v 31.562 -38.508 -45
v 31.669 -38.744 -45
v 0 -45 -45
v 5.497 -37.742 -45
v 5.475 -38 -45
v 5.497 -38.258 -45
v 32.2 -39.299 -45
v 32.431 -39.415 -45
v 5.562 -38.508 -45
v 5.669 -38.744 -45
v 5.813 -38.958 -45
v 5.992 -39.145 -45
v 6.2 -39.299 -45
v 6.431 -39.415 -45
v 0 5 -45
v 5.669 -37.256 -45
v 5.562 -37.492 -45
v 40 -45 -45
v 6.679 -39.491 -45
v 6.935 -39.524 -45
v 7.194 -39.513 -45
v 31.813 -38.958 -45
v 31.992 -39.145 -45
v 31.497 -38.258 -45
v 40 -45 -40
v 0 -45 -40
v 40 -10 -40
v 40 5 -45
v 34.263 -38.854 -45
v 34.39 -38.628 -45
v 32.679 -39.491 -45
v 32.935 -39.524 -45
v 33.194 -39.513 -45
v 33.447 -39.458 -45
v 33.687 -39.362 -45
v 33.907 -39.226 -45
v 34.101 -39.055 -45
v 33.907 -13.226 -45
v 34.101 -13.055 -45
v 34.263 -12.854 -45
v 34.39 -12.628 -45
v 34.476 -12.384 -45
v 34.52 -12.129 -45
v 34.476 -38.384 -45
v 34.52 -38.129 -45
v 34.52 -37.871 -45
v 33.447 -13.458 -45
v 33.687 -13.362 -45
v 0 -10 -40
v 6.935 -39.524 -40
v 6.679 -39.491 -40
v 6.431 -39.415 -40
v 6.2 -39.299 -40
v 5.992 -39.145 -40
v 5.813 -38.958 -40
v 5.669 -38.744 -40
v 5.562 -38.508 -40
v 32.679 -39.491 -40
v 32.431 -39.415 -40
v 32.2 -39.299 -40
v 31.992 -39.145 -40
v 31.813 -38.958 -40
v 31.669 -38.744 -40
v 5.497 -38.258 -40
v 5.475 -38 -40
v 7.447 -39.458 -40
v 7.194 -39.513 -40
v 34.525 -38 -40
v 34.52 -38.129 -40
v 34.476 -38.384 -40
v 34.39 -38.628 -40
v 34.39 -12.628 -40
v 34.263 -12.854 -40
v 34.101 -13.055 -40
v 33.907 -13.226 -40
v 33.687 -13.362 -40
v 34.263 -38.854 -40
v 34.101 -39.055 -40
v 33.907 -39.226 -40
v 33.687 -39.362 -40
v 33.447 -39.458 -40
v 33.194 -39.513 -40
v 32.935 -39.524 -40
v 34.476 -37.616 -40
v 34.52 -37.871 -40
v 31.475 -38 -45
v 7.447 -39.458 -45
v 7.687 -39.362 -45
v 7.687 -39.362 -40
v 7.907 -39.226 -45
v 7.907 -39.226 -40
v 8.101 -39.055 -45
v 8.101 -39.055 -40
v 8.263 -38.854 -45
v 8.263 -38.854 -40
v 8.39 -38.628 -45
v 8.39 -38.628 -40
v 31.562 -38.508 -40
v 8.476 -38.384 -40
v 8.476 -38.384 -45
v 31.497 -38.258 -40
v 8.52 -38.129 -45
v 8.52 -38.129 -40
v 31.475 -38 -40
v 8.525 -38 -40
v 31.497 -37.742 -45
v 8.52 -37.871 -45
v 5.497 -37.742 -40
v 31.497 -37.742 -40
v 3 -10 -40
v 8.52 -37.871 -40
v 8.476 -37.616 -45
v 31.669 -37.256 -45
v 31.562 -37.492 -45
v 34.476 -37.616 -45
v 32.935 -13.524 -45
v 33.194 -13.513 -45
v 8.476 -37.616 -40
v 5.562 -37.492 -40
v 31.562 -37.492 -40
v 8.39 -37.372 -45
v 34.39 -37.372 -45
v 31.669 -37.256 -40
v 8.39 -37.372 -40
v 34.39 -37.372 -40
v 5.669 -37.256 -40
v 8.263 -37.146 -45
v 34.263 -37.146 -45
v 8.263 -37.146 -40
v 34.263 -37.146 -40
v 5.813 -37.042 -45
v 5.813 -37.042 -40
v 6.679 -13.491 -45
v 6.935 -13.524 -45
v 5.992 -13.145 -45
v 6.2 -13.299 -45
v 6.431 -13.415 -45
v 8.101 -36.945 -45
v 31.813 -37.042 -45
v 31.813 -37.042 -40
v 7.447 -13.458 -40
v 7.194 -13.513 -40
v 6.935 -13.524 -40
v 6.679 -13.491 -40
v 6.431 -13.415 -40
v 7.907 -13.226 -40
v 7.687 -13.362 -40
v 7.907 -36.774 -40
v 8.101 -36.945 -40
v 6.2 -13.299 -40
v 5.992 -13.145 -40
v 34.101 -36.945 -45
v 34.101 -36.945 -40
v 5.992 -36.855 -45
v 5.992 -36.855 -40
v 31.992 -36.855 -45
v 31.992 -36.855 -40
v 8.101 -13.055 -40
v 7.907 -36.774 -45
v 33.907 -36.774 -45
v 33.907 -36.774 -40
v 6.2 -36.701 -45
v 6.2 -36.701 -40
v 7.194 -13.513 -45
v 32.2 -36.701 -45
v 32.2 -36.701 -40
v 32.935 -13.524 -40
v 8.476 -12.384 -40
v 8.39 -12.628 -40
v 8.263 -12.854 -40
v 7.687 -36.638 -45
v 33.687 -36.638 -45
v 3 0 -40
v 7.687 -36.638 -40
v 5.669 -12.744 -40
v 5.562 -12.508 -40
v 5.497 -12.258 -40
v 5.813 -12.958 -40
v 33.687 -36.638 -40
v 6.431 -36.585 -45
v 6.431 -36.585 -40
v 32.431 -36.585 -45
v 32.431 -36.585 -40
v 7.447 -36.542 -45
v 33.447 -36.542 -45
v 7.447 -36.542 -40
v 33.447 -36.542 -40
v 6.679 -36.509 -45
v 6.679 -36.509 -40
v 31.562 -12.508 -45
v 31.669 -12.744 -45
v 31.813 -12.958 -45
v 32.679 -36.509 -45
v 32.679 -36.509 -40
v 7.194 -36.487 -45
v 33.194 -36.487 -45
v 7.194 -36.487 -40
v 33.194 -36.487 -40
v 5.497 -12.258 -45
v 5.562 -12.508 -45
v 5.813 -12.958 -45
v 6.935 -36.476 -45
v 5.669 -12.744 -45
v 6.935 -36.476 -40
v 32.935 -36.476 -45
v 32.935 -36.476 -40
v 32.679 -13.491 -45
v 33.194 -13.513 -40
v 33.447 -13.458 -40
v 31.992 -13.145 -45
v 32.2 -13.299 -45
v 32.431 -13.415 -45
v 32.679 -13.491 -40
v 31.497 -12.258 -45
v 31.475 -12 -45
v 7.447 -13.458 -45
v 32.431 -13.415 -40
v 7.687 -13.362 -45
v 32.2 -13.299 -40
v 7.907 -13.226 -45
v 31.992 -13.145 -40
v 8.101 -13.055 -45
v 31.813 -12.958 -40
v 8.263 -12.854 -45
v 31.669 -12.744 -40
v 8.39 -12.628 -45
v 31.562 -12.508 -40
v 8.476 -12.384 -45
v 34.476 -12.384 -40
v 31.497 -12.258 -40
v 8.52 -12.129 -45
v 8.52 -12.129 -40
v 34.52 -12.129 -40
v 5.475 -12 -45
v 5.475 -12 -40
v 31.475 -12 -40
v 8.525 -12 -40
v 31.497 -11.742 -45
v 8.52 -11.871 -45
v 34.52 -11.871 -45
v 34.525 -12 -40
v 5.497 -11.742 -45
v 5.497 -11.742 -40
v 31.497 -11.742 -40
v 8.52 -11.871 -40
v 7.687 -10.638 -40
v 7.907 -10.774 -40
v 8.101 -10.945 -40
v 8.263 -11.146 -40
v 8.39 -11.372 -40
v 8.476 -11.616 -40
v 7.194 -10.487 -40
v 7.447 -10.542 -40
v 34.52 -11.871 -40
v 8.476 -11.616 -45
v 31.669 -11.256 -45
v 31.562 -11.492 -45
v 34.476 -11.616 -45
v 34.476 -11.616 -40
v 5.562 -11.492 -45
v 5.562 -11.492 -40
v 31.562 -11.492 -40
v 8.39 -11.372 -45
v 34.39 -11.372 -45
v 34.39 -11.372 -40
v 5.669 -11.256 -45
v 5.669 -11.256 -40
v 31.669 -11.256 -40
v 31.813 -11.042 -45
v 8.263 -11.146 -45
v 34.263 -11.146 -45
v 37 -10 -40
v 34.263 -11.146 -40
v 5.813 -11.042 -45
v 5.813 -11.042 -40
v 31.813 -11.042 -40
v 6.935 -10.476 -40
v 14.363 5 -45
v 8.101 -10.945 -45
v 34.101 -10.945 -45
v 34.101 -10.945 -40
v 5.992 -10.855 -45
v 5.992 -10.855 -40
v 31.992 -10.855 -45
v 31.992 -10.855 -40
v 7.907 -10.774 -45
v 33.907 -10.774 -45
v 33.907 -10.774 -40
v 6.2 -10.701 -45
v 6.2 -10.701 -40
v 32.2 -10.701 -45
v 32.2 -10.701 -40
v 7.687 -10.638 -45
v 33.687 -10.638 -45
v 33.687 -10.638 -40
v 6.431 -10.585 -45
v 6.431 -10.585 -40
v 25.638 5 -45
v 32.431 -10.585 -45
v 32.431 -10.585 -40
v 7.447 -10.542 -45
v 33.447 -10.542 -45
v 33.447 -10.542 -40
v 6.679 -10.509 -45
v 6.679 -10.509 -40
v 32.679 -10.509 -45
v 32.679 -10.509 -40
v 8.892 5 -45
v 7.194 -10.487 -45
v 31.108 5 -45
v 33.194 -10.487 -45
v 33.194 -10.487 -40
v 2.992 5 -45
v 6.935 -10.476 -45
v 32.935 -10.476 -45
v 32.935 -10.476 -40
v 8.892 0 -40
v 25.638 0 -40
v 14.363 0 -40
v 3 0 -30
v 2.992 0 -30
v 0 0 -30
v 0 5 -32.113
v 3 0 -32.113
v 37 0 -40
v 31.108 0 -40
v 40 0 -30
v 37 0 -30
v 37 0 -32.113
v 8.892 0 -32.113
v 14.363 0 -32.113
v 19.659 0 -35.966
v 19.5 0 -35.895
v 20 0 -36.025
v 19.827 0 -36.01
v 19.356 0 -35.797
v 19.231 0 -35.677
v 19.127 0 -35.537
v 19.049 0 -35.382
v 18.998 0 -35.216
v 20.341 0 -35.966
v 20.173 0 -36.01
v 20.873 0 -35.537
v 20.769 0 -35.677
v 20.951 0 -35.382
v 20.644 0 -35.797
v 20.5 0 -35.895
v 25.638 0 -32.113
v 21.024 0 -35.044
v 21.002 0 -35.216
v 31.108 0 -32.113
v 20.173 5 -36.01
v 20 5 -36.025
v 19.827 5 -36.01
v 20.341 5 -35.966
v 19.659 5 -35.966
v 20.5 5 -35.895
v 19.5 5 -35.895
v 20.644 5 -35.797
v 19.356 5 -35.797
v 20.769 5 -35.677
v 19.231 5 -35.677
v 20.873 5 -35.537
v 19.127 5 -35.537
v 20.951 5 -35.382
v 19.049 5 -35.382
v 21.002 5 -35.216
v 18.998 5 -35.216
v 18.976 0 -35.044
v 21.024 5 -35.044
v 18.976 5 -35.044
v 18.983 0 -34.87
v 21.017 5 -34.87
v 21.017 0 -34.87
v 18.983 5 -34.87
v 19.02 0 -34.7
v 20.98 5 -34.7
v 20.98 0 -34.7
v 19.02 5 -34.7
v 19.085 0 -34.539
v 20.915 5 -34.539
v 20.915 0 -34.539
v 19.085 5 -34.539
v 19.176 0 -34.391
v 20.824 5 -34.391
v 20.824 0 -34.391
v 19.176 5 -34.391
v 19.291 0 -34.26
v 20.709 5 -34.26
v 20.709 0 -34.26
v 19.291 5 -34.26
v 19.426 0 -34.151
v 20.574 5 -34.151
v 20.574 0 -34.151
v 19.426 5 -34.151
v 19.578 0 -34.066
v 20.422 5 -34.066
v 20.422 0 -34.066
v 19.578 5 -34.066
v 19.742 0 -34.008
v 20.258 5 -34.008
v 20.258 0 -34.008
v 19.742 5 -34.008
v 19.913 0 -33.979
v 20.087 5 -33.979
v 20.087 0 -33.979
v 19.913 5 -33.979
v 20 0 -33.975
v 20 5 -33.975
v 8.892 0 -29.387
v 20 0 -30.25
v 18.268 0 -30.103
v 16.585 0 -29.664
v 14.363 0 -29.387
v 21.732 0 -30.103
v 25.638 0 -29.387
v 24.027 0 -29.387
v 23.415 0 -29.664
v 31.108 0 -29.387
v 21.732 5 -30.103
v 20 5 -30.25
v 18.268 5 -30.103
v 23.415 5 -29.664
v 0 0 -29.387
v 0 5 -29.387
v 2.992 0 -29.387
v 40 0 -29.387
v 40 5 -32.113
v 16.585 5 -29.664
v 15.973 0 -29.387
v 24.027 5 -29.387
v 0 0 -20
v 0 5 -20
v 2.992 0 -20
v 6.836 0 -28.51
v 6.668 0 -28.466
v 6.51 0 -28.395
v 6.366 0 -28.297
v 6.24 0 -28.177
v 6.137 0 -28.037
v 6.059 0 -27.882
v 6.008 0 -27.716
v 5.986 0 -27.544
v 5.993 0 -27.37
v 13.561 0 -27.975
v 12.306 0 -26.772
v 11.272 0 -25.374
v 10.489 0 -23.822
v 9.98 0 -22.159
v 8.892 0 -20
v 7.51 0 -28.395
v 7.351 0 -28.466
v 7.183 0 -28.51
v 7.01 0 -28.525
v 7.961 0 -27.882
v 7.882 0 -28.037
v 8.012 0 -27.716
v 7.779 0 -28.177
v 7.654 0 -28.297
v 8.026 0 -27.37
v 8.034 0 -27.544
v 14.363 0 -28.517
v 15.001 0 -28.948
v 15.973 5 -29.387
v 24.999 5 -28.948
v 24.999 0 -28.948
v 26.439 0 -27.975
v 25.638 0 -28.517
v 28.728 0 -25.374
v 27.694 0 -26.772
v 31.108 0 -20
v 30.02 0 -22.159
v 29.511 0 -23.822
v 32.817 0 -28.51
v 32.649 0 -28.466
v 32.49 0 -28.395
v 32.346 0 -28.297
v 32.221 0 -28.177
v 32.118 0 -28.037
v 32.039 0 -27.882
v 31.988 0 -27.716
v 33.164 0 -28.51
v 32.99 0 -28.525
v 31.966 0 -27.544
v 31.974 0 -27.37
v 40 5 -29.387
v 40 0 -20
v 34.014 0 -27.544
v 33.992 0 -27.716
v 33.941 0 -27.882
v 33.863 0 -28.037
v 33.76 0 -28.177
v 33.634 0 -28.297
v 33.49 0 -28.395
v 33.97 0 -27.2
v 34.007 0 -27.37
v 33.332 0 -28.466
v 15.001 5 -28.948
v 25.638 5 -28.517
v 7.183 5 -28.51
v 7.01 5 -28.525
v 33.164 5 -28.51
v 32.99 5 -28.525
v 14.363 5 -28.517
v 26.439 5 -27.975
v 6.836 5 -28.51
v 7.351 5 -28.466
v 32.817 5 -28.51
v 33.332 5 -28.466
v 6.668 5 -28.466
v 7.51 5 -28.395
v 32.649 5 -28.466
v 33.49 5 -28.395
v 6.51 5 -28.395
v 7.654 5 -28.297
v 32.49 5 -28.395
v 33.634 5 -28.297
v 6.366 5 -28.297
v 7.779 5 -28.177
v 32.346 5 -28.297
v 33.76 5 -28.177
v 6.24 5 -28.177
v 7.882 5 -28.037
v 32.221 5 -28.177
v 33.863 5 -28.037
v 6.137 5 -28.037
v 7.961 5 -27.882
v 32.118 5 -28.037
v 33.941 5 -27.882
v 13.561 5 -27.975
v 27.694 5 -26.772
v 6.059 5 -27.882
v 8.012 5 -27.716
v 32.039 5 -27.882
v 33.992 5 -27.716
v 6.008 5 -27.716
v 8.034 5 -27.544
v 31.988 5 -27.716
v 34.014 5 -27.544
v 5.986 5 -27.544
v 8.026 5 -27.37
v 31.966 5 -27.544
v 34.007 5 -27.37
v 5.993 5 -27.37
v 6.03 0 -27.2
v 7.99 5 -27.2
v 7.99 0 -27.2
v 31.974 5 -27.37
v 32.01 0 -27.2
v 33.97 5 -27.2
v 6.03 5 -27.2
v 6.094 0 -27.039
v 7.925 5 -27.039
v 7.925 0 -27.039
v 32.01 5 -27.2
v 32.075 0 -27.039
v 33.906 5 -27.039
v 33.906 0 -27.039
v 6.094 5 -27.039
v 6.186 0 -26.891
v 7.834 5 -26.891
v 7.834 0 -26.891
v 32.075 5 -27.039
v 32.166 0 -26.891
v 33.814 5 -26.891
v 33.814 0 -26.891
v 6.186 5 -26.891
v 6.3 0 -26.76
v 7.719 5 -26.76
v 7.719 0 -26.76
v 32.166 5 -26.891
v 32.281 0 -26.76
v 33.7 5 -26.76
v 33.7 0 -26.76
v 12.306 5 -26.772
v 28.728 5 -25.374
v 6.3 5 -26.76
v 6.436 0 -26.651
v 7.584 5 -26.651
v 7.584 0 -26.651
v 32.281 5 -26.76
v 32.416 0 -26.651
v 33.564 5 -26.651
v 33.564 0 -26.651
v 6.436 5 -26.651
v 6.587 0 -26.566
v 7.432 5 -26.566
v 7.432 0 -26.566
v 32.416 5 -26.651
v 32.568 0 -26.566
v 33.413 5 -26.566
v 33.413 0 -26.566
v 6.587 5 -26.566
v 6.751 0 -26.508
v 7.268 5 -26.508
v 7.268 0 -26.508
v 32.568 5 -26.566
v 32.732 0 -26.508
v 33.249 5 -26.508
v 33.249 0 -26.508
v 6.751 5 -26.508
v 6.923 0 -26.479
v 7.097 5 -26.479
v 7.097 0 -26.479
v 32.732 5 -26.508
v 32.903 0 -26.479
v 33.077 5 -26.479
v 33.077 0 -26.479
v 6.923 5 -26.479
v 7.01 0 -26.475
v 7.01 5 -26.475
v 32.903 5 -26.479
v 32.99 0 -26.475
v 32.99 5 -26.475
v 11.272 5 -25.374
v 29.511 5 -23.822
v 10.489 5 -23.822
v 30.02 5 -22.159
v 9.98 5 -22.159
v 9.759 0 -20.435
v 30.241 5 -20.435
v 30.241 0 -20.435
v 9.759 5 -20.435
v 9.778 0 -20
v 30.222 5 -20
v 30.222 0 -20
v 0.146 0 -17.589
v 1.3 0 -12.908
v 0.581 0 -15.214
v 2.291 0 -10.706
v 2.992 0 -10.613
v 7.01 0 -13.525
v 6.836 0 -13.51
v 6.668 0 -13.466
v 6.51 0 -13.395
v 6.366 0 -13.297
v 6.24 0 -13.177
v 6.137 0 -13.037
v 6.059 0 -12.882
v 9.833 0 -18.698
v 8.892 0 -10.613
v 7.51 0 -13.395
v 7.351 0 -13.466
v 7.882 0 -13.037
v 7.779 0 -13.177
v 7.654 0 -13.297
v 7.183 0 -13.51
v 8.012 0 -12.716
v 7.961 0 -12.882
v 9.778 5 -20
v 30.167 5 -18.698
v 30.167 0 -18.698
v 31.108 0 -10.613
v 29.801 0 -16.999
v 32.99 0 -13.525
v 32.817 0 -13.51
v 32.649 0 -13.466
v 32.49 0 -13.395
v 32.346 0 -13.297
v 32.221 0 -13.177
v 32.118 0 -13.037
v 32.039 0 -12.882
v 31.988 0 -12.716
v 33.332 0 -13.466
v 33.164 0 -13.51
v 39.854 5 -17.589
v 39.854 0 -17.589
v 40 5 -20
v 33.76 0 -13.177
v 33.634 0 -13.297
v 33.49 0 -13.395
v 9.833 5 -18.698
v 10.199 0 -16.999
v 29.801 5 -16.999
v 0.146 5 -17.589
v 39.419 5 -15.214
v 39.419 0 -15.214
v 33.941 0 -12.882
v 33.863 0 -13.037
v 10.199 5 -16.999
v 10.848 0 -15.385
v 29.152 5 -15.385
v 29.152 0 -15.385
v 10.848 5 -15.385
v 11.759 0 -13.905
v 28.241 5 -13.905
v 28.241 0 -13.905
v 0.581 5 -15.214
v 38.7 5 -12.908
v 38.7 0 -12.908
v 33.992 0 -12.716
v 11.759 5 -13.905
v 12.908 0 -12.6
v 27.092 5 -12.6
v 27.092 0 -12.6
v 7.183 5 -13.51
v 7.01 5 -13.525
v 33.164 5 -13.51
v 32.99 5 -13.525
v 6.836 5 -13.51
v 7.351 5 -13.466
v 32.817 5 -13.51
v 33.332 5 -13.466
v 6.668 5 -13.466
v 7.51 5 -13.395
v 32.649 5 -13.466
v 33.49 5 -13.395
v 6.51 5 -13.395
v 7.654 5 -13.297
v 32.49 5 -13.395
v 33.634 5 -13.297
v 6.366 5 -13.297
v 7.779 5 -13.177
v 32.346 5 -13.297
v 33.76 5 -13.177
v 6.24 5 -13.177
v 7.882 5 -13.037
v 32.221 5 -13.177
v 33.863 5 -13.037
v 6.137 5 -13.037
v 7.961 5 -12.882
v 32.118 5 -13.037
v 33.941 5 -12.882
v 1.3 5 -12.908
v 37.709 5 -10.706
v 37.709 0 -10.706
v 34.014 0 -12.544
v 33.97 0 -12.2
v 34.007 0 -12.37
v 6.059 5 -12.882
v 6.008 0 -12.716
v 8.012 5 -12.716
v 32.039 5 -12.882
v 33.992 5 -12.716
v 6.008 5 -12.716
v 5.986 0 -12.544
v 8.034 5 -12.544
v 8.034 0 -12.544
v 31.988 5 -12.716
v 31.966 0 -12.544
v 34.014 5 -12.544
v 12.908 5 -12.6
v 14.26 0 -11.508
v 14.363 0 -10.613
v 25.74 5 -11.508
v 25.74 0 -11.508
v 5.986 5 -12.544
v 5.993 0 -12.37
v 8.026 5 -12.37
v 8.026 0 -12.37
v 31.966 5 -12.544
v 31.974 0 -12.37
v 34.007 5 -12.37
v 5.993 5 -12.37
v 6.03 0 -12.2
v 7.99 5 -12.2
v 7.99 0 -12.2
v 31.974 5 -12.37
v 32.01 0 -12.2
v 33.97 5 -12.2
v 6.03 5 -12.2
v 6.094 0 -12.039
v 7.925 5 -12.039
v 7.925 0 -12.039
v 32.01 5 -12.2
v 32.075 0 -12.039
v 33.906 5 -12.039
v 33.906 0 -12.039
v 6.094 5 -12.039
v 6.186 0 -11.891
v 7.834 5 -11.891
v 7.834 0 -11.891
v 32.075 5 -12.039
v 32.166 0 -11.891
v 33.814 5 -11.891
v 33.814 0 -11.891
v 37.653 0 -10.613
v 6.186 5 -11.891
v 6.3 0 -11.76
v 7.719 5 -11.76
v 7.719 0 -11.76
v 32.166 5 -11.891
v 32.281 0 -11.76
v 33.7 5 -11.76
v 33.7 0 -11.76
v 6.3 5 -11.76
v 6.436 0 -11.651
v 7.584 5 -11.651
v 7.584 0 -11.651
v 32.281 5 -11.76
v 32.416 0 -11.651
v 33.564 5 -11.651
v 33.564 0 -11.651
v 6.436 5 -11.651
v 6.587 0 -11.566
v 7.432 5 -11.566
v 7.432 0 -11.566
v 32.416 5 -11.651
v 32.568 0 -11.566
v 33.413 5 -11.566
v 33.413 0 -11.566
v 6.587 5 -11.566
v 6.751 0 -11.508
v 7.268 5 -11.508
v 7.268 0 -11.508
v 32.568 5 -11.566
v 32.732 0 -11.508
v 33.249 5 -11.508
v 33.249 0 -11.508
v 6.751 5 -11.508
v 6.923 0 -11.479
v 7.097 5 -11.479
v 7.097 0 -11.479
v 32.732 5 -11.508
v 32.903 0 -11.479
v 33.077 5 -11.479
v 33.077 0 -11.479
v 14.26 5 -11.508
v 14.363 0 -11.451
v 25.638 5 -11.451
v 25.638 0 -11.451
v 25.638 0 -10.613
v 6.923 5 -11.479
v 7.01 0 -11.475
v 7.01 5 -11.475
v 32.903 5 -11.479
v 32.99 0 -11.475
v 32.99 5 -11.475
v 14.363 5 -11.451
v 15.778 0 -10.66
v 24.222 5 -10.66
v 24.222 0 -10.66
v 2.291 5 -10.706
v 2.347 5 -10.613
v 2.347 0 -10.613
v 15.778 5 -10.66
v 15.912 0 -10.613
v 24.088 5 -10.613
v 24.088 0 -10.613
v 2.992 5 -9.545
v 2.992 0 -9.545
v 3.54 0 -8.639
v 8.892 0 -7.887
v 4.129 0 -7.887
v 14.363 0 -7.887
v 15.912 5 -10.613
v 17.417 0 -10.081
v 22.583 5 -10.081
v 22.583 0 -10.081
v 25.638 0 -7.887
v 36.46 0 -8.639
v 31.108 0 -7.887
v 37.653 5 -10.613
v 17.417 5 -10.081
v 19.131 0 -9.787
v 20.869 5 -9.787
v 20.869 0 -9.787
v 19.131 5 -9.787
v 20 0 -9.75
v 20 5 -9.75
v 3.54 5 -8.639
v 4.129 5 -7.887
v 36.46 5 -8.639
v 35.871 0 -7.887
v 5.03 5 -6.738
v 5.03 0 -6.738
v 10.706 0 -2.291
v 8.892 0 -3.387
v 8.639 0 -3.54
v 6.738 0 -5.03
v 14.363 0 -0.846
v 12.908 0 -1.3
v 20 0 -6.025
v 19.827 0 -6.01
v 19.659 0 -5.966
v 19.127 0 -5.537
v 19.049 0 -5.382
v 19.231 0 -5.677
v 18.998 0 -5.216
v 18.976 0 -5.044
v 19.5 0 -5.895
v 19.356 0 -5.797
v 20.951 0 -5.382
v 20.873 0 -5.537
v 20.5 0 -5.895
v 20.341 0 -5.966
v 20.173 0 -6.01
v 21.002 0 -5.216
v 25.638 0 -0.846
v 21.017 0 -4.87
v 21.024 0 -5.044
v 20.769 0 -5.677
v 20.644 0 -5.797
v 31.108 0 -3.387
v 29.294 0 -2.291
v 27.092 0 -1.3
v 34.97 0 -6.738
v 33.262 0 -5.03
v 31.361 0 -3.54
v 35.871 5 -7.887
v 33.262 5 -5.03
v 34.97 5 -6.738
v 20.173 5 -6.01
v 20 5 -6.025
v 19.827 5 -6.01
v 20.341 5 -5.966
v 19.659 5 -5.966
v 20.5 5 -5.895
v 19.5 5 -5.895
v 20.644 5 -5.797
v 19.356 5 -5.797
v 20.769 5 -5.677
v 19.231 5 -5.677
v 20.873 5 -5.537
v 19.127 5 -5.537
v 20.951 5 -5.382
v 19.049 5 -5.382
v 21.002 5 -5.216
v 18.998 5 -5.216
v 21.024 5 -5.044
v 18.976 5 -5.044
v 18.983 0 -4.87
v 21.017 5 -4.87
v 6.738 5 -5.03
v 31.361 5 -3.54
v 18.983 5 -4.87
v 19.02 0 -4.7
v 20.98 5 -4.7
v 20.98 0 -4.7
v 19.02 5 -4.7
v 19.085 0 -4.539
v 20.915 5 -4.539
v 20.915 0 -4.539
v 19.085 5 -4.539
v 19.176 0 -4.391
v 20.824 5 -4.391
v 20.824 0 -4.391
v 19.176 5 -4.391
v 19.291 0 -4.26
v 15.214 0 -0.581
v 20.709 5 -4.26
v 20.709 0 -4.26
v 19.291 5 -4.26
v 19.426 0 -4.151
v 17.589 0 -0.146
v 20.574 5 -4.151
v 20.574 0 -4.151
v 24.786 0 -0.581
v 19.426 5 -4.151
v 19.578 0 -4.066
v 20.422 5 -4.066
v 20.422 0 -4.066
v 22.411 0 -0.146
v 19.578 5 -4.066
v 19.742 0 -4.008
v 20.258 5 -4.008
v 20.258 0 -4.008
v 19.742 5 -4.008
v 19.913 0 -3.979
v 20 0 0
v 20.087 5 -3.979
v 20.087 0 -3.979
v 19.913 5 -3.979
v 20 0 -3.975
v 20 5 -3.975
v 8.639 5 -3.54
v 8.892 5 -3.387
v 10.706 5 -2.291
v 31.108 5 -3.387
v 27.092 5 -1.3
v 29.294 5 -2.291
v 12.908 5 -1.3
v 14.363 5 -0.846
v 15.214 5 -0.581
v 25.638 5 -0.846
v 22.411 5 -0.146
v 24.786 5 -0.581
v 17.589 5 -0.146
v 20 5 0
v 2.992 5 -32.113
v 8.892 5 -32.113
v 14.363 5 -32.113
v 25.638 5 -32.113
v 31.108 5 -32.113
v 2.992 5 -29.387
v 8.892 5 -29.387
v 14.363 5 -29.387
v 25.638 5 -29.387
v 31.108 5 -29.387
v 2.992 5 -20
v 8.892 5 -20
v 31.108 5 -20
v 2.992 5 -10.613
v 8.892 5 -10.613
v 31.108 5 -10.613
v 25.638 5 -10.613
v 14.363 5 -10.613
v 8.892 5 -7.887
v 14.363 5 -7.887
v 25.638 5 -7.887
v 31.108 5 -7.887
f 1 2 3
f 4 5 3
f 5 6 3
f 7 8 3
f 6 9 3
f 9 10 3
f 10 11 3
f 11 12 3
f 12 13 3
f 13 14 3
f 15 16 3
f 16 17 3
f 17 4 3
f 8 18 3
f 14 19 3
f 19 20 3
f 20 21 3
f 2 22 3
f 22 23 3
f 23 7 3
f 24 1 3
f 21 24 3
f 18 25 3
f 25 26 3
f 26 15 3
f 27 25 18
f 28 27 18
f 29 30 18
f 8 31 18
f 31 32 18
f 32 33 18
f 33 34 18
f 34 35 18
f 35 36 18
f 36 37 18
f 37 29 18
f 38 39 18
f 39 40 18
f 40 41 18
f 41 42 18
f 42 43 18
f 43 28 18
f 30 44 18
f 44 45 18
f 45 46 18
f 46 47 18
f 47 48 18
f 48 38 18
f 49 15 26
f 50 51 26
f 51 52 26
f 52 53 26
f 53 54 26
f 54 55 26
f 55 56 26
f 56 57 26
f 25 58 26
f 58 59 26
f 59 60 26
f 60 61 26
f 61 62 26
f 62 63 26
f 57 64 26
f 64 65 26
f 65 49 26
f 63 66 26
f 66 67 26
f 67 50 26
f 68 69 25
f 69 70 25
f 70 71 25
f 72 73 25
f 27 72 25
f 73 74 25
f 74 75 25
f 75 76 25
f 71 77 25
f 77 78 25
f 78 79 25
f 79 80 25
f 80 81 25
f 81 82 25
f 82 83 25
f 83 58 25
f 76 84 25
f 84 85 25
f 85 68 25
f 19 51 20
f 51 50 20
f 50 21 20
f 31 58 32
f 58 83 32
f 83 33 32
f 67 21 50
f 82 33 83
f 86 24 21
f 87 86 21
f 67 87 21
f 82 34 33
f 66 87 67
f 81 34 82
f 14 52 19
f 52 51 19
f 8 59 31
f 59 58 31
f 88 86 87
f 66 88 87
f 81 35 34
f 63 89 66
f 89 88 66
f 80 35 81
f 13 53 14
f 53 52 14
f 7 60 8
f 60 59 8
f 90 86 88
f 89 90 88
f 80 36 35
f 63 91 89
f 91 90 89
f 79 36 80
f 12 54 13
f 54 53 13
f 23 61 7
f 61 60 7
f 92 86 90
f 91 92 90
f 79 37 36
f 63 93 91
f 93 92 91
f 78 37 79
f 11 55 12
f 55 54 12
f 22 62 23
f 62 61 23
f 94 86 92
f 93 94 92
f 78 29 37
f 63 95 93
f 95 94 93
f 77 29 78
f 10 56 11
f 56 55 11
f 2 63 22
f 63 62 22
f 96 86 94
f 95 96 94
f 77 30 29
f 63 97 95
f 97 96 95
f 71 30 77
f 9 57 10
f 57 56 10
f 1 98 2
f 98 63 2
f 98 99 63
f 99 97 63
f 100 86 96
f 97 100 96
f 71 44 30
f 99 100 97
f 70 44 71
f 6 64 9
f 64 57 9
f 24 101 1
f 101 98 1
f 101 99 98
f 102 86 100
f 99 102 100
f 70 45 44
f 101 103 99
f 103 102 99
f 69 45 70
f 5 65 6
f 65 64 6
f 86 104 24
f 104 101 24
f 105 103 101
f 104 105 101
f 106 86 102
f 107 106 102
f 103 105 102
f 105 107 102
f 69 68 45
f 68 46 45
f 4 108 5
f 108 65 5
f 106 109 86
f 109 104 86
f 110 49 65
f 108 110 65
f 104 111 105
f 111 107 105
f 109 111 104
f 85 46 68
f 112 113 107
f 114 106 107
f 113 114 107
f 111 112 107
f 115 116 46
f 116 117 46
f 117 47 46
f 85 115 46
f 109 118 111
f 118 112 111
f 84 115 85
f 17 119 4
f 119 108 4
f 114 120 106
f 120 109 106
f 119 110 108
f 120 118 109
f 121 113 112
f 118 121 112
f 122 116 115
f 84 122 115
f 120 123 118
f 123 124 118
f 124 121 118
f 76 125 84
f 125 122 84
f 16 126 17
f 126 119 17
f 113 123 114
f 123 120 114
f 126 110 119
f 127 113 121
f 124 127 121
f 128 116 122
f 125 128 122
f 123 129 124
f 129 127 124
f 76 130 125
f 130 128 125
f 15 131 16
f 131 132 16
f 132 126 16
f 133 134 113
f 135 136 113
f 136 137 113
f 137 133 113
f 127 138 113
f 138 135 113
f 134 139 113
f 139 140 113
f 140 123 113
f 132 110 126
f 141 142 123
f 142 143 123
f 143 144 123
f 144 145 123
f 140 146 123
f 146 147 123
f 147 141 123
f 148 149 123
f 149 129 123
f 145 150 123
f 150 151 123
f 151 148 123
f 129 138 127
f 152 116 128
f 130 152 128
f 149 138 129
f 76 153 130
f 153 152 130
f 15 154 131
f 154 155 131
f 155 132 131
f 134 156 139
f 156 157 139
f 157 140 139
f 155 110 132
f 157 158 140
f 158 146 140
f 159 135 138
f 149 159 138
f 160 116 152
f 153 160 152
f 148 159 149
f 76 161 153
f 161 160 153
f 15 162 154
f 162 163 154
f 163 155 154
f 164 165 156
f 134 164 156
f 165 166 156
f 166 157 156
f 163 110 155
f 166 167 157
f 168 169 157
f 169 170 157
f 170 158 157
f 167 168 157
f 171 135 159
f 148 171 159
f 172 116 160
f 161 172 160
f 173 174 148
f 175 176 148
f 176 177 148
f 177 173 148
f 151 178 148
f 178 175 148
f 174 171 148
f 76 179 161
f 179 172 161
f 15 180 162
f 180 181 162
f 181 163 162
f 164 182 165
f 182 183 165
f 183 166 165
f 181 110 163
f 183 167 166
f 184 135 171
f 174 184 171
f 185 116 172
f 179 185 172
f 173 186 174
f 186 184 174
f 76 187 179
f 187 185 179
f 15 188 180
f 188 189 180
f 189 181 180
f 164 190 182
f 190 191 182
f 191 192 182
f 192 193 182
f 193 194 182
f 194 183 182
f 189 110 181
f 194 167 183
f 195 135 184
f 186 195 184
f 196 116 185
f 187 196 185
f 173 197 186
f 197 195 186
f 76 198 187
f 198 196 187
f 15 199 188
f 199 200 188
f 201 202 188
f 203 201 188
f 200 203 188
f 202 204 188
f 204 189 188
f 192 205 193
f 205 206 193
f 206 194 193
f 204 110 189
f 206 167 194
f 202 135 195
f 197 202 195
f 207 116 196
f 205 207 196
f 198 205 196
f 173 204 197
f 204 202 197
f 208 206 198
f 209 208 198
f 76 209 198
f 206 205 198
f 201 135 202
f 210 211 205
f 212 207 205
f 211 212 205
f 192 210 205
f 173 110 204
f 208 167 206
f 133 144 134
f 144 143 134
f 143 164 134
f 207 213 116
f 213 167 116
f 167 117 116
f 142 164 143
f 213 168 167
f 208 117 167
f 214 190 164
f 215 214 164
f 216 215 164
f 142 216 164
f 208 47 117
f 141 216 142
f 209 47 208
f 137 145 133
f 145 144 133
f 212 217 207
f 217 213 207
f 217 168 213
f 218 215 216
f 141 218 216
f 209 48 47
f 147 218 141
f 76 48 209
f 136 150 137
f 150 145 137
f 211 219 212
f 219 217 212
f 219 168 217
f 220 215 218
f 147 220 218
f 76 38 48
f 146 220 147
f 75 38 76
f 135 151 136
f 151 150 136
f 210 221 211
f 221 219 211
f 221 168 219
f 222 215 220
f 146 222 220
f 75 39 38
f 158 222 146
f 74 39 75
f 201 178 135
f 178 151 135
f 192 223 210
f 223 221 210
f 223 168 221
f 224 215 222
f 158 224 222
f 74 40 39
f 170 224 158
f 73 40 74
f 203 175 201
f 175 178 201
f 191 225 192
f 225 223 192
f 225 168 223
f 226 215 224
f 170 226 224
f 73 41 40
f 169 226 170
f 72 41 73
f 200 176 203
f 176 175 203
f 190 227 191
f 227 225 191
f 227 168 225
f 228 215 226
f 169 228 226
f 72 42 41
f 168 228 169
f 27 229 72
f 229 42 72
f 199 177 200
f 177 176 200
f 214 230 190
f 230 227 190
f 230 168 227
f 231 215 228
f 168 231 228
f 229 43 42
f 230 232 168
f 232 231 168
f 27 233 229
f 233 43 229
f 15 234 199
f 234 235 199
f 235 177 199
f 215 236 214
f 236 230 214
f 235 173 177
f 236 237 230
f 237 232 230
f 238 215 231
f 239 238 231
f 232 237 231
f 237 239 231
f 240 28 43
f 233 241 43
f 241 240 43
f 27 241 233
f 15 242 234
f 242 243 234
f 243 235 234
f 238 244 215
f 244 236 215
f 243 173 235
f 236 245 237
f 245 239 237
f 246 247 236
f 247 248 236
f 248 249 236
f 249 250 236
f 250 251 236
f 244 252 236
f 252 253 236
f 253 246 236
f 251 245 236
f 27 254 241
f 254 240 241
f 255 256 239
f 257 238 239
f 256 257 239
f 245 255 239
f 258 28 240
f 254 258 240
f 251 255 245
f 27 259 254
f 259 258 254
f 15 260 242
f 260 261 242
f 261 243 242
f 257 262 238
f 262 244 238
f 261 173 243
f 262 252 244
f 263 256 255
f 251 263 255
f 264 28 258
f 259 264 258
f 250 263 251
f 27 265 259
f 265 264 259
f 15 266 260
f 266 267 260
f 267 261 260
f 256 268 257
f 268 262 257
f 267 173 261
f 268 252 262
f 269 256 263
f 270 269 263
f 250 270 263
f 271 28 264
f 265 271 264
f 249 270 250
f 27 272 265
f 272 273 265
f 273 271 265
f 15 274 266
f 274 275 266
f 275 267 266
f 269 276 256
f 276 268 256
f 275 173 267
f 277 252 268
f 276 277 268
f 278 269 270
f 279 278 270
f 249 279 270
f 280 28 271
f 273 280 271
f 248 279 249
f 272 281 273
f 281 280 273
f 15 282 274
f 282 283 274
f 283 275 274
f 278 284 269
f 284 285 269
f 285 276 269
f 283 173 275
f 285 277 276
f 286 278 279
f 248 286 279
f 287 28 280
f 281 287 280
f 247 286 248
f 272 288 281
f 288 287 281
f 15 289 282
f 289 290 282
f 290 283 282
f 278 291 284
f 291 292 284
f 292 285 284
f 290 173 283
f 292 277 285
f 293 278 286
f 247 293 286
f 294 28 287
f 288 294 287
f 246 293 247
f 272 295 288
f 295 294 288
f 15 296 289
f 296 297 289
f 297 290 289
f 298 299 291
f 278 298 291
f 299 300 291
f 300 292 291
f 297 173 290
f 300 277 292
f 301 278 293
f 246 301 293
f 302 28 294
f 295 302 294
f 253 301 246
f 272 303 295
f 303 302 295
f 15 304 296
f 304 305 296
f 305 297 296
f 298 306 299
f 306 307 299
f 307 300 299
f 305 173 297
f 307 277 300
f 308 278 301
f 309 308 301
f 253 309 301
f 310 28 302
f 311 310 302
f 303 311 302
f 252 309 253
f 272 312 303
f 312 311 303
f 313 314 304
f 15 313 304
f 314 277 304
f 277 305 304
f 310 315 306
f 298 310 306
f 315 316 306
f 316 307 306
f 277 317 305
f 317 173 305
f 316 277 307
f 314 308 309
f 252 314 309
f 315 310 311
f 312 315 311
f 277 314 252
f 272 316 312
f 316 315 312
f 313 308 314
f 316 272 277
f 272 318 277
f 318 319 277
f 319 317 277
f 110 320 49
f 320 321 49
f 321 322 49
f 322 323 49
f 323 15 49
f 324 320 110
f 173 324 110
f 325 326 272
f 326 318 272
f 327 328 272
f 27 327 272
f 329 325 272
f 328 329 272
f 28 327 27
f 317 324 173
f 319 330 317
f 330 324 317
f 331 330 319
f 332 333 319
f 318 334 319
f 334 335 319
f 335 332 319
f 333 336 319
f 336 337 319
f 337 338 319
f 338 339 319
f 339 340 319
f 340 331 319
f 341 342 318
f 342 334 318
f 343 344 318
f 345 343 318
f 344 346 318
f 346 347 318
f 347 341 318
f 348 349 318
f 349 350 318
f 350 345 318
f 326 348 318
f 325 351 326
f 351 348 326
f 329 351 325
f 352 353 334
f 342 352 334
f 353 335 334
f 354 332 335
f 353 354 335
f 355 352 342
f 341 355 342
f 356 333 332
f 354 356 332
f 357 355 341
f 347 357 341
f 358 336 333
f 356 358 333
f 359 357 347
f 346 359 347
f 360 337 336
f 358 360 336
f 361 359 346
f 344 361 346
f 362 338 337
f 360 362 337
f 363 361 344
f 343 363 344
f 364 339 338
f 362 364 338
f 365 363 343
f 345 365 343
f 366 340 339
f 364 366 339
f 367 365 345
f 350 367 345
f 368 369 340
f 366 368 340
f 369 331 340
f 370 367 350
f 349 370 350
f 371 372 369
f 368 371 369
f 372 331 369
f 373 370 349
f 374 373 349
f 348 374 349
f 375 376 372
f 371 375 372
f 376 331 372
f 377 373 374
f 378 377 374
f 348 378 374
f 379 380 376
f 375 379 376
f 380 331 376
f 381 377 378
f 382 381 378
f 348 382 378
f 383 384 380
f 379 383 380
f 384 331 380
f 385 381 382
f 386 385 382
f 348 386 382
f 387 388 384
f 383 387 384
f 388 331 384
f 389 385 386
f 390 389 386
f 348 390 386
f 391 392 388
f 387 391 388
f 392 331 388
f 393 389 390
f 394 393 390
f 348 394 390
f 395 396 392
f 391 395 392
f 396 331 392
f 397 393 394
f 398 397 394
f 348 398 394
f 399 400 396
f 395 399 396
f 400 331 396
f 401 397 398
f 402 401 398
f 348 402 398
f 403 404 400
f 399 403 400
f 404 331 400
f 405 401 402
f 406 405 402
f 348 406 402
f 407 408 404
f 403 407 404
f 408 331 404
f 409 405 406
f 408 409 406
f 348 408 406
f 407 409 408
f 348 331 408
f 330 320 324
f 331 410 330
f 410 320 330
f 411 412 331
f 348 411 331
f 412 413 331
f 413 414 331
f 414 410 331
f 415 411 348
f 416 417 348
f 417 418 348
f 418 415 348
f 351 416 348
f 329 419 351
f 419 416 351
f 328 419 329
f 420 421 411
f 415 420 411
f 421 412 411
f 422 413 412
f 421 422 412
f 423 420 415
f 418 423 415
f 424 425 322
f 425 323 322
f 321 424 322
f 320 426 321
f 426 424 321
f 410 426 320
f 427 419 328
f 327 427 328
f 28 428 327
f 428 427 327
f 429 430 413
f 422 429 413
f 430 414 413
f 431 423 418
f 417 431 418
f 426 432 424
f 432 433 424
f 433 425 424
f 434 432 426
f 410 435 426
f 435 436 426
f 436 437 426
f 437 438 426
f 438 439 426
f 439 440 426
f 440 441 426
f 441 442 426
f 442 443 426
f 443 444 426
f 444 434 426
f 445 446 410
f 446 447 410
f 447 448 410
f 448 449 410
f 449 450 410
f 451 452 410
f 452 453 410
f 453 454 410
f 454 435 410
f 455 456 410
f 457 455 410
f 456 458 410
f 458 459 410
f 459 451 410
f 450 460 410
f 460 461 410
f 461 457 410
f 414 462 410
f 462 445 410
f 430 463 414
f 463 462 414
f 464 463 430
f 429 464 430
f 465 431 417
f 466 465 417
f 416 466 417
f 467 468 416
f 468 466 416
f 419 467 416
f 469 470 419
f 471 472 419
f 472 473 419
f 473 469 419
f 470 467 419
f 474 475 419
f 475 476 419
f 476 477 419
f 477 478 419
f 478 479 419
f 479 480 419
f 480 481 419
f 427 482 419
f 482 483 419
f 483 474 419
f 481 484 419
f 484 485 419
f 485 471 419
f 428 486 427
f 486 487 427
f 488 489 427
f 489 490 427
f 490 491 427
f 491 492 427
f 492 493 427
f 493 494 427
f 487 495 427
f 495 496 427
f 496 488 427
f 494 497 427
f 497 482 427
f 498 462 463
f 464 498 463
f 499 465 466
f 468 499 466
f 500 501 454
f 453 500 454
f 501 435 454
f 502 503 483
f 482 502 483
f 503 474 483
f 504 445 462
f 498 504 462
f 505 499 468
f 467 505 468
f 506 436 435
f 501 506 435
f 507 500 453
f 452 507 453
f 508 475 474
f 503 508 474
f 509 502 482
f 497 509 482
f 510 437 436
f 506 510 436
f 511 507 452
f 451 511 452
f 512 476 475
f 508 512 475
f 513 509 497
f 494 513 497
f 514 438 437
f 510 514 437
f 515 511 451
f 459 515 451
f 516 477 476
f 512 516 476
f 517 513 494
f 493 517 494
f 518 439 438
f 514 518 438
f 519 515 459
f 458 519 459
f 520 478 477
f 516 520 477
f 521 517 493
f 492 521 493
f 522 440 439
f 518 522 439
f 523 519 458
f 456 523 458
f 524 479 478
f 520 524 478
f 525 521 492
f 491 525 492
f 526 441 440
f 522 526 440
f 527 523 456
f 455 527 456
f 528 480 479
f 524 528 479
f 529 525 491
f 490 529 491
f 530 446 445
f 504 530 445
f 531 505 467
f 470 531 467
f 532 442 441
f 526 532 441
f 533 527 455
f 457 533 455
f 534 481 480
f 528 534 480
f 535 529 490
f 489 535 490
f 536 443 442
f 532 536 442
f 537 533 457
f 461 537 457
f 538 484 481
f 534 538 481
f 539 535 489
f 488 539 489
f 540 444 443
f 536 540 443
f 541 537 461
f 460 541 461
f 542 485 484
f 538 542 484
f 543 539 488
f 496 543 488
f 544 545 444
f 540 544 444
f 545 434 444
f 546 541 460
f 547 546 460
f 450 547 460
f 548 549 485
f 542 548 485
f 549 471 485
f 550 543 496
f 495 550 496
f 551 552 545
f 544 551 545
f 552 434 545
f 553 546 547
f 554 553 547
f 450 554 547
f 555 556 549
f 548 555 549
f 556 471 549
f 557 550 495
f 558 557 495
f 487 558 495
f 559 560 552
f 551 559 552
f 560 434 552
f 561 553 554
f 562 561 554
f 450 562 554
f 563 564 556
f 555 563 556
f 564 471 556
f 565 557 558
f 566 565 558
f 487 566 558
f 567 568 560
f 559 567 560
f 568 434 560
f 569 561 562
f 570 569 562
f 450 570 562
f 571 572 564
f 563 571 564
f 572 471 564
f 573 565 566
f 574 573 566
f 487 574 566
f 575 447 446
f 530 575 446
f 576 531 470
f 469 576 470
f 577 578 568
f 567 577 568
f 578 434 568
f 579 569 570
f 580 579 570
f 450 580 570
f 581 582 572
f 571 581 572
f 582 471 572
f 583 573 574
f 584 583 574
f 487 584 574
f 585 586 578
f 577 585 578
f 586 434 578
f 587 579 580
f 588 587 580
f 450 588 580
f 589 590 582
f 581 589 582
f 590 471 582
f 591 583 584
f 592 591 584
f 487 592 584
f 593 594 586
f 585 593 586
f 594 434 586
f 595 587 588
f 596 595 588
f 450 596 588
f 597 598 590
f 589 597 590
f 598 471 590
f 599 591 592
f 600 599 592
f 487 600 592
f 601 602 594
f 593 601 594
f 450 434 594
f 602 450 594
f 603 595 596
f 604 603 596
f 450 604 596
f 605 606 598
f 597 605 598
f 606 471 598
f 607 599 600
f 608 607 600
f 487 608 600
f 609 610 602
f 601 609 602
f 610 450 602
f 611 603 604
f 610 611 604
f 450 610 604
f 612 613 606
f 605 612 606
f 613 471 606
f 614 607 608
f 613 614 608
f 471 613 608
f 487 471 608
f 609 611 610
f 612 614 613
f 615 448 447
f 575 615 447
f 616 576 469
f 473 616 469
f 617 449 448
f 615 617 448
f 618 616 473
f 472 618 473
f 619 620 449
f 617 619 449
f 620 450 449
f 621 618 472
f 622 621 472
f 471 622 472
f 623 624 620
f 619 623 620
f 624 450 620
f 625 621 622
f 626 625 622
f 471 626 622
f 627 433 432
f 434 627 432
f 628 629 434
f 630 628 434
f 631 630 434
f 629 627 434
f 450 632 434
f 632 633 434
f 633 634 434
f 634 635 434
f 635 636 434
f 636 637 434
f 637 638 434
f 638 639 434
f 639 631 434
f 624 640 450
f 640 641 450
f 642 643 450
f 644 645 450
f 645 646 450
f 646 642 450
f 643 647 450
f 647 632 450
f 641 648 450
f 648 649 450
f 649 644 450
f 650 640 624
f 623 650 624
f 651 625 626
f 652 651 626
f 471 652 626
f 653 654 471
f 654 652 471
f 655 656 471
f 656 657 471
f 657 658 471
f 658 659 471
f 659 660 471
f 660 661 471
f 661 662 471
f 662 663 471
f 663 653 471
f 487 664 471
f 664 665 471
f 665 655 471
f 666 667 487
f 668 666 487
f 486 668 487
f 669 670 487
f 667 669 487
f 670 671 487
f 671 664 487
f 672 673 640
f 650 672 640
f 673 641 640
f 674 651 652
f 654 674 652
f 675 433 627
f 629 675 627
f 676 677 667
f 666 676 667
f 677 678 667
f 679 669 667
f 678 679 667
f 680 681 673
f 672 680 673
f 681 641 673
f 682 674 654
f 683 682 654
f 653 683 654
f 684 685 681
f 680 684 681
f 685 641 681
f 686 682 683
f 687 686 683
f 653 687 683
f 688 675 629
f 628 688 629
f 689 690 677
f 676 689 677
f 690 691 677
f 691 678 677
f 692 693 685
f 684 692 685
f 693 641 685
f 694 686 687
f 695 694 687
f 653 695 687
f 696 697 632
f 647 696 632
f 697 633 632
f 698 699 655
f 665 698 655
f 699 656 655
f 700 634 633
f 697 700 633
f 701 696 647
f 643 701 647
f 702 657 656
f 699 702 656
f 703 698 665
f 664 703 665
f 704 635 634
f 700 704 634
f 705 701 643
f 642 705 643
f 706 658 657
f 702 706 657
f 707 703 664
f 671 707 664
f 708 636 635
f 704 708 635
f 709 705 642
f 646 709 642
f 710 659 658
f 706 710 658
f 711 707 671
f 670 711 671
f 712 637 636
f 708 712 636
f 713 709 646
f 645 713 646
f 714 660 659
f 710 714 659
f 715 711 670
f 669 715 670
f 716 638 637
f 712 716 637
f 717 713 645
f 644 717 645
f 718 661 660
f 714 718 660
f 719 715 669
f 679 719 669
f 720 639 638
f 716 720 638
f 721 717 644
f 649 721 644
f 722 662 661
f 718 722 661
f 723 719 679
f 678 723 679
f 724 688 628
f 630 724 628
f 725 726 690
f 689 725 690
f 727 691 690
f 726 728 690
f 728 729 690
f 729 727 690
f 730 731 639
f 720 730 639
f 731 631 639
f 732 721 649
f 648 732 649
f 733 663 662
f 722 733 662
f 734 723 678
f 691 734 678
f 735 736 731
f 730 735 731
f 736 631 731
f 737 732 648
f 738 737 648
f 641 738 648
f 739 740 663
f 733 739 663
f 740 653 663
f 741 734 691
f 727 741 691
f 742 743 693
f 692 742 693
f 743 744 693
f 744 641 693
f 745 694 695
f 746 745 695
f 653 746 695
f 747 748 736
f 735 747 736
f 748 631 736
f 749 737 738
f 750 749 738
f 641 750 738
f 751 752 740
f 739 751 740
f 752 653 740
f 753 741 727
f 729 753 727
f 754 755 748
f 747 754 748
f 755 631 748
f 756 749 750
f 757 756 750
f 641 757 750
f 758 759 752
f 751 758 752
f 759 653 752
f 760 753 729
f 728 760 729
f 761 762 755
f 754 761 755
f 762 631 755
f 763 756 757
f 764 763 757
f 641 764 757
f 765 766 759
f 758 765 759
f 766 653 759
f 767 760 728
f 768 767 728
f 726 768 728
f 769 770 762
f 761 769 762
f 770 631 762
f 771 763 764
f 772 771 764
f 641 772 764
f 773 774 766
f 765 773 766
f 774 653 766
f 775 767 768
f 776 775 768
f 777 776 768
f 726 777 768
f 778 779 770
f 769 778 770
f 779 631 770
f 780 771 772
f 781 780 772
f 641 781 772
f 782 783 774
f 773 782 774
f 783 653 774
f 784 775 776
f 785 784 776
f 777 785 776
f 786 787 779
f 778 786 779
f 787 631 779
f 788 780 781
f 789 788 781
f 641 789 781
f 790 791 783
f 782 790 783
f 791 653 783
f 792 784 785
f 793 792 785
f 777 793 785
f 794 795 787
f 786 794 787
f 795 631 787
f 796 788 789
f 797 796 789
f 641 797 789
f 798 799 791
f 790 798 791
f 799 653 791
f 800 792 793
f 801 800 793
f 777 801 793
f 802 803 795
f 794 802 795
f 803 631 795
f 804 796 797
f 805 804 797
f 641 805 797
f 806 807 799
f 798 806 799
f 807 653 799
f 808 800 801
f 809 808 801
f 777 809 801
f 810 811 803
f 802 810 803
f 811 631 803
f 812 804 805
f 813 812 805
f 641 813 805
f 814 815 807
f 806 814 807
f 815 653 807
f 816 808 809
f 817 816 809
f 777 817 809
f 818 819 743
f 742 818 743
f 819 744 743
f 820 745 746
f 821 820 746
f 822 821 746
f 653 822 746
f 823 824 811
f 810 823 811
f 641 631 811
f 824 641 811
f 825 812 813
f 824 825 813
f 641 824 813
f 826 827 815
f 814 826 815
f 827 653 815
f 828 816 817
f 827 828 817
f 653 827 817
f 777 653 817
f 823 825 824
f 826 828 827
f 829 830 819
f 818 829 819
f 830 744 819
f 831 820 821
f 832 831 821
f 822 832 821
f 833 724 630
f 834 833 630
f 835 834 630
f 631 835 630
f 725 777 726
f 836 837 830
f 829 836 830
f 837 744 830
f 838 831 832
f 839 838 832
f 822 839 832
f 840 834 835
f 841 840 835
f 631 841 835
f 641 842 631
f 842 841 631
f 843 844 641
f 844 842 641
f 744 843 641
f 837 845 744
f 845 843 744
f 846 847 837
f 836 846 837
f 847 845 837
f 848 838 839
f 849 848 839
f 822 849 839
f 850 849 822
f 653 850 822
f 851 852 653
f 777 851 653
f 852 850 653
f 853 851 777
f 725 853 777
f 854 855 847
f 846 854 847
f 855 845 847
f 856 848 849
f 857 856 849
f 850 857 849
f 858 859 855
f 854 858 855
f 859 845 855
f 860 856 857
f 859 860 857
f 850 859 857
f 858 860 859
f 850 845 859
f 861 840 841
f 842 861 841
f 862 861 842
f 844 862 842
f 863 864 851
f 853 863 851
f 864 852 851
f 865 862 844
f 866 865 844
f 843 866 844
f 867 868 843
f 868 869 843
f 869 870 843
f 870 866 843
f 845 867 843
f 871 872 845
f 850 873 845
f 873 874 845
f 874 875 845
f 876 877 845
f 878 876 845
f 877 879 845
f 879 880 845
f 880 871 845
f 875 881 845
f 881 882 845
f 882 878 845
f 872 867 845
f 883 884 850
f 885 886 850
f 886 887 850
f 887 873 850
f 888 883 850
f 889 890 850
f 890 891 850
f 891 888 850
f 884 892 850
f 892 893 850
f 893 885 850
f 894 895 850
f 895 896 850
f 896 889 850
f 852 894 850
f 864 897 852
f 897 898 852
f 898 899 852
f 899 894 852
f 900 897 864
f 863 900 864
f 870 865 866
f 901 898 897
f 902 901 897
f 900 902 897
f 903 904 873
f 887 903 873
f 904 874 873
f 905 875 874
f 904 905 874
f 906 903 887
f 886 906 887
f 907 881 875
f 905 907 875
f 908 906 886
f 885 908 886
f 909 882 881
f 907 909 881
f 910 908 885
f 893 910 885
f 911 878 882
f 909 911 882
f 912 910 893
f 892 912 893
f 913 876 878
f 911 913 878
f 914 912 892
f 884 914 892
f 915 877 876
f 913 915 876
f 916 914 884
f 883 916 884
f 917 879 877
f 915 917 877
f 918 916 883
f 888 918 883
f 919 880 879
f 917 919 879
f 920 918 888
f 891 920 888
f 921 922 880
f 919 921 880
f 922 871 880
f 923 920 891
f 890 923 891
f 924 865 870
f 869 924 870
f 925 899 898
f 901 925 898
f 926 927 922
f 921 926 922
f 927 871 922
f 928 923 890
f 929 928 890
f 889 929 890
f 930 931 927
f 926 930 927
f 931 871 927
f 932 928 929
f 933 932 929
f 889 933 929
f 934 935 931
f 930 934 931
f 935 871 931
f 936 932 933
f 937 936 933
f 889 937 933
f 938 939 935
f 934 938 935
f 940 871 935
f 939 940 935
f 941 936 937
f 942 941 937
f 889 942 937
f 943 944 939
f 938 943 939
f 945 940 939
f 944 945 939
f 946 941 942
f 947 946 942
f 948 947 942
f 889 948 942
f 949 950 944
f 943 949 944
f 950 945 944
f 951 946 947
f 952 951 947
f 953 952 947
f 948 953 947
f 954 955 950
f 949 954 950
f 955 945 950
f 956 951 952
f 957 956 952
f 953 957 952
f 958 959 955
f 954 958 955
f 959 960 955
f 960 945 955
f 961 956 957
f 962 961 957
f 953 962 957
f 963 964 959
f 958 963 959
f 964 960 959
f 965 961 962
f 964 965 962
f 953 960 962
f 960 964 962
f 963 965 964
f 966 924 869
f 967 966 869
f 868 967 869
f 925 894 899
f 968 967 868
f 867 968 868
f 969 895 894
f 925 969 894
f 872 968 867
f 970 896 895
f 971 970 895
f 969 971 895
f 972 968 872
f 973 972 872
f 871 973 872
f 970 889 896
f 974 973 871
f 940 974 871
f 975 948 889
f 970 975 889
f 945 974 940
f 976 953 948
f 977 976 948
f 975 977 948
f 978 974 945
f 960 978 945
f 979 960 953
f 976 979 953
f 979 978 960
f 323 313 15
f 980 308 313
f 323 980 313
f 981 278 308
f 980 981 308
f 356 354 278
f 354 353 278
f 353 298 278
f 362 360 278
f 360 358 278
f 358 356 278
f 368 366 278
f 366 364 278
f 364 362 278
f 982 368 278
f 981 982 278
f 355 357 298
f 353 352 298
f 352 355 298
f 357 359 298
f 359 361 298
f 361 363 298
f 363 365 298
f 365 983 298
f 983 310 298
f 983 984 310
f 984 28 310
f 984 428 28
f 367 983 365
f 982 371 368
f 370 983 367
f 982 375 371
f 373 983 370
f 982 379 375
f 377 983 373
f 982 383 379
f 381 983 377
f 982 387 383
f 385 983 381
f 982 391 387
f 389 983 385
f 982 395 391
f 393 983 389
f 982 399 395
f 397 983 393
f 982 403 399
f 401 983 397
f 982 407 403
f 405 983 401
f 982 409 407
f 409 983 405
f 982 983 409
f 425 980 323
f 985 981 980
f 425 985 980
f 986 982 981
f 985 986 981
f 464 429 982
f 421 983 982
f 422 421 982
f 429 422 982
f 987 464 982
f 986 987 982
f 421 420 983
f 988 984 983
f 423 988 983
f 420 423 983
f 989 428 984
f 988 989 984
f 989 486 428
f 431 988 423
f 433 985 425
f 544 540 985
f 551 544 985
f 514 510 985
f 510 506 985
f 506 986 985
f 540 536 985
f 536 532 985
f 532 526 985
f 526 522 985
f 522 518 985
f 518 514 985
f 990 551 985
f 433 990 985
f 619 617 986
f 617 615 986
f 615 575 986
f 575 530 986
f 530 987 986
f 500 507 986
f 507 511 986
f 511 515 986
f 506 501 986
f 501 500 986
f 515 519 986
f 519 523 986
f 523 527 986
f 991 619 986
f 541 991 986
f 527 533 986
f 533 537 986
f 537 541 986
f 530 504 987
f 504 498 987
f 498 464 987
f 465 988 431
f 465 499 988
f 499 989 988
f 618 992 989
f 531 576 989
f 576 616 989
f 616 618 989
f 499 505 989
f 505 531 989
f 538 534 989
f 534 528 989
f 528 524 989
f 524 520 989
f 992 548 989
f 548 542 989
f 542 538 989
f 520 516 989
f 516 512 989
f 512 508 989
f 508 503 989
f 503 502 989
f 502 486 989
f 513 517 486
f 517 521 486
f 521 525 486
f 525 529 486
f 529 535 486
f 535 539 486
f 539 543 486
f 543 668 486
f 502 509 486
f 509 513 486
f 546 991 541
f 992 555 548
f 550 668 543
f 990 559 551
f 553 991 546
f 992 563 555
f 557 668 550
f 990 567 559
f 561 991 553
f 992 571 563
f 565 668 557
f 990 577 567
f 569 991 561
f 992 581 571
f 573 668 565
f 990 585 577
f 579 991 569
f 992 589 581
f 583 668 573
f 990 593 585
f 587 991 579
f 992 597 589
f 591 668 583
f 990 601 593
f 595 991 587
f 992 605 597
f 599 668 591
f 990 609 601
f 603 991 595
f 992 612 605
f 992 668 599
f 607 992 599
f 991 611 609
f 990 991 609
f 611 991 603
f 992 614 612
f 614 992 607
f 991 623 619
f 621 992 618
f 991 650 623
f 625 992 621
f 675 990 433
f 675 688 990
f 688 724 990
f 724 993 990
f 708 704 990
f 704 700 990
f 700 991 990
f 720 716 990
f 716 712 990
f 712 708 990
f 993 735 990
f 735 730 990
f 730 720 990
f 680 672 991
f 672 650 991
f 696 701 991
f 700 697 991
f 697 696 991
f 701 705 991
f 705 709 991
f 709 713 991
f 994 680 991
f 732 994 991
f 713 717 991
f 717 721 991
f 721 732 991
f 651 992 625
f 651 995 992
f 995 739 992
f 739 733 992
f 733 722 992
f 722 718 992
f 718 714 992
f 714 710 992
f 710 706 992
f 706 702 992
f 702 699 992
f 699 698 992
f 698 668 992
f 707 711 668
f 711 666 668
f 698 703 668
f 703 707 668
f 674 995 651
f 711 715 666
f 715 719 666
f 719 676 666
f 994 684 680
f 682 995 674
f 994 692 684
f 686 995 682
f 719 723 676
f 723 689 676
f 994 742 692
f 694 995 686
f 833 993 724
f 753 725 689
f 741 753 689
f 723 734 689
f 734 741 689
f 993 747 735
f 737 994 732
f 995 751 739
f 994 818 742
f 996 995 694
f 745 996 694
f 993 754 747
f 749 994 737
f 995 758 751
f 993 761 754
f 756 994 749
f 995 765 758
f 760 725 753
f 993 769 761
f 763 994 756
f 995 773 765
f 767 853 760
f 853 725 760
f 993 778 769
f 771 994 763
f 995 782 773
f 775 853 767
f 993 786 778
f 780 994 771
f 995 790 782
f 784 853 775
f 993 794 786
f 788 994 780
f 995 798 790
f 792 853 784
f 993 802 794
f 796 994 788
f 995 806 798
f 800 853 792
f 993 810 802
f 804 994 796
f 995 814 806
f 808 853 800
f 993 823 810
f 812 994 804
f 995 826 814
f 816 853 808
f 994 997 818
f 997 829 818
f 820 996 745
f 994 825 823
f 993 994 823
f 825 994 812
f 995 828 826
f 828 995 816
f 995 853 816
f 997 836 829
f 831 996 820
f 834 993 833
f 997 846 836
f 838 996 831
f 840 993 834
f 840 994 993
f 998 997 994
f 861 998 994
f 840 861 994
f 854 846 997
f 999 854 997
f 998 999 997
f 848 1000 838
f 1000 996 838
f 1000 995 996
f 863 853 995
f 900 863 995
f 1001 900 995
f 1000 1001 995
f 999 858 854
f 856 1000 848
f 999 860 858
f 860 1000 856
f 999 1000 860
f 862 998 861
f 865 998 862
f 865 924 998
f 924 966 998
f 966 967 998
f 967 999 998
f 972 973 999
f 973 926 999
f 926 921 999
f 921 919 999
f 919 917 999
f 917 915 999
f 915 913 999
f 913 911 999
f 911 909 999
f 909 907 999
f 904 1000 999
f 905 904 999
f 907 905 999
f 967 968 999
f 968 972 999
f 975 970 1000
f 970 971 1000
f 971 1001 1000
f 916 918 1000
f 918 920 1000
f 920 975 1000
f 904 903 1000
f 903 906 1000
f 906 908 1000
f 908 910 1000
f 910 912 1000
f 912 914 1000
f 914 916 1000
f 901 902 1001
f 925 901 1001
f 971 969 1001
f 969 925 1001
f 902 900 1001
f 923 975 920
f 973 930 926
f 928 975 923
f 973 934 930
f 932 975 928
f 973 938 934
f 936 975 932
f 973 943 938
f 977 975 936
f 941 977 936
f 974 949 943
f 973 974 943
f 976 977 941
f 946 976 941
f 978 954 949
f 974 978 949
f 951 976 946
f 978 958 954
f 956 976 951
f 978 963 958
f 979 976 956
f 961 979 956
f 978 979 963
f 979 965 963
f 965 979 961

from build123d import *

# Parameters (mm, degrees)
SKETCH_1_R          = 1.025
SKETCH_1_R_2        = 10.25
EXTRUDE_2_DEPTH     = 5
SKETCH_2_W          = 40
SKETCH_2_H          = 5
EXTRUDE_3_DEPTH     = 50
CUT_EXTRUDE_1_REACH = 77.166
SKETCH_3_R          = 1.525
EXTRUDE_4_DEPTH     = 3
EXTRUDE_5_DEPTH     = 3


with BuildPart() as part:
    # 草图1 → 凸台-拉伸2 (new body)
    with BuildSketch(Plane(origin=(0, 0, 0), x_dir=(1, 0, 0), z_dir=(0, 1, 0))):
        with BuildLine():
            ThreePointArc((0, 20), (5.857864376, 5.857864376), (20, 0))
            ThreePointArc((20, 0), (34.142135624, 5.857864376), (40, 20))
            Line((40, 20), (40, 40))
            Line((40, 40), (0, 40))
            Line((0, 40), (0, 20))
        make_face()
        with Locations(Location((7.009618943, 12.5, 0), (0, 0, 270))):
            Circle(SKETCH_1_R, mode=Mode.SUBTRACT)
        with Locations(Location((20, 5, 0), (0, 0, 270))):
            Circle(SKETCH_1_R, mode=Mode.SUBTRACT)
        with Locations(Location((32.990381057, 12.5, 0), (0, 0, 270))):
            Circle(SKETCH_1_R, mode=Mode.SUBTRACT)
        with Locations(Location((7.009618943, 27.5, 0), (0, 0, 270))):
            Circle(SKETCH_1_R, mode=Mode.SUBTRACT)
        with Locations(Location((20, 20, 0), (0, 0, 270))):
            Circle(SKETCH_1_R_2, mode=Mode.SUBTRACT)
        with Locations(Location((32.990381057, 27.5, 0), (0, 0, 270))):
            Circle(SKETCH_1_R, mode=Mode.SUBTRACT)
        with Locations(Location((20, 35, 0), (0, 0, 270))):
            Circle(SKETCH_1_R, mode=Mode.SUBTRACT)
    extrude(amount=EXTRUDE_2_DEPTH)

    # 草图2 → 凸台-拉伸3 (add)
    with BuildSketch(Plane(origin=(0, 5, 0), x_dir=(1, 0, 0), z_dir=(0, 1, 0))):
        with Locations((20, 42.5)):
            Rectangle(SKETCH_2_W, SKETCH_2_H)
    extrude(amount=-EXTRUDE_3_DEPTH)

    # 草图3 → 切除-拉伸1 (cut, up to next)
    with BuildSketch(Plane(origin=(0, 0, -45), x_dir=(-1, 0, 0), z_dir=(0, 0, -1)), mode=Mode.PRIVATE) as cut_extrude_1_sk1:
        with Locations((-7, -12)):
            Circle(SKETCH_3_R)
    cut_extrude_1_tool1 = extrude(cut_extrude_1_sk1.sketch, amount=-CUT_EXTRUDE_1_REACH, mode=Mode.PRIVATE) & part.part
    # 草图3 → 切除-拉伸1 (cut, up to next)
    with BuildSketch(Plane(origin=(0, 0, -45), x_dir=(-1, 0, 0), z_dir=(0, 0, -1)), mode=Mode.PRIVATE) as cut_extrude_1_sk2:
        with Locations((-7, -38)):
            Circle(SKETCH_3_R)
    cut_extrude_1_tool2 = extrude(cut_extrude_1_sk2.sketch, amount=-CUT_EXTRUDE_1_REACH, mode=Mode.PRIVATE) & part.part
    # 草图3 → 切除-拉伸1 (cut, up to next)
    with BuildSketch(Plane(origin=(0, 0, -45), x_dir=(-1, 0, 0), z_dir=(0, 0, -1)), mode=Mode.PRIVATE) as cut_extrude_1_sk3:
        with Locations((-33, -38)):
            Circle(SKETCH_3_R)
    cut_extrude_1_tool3 = extrude(cut_extrude_1_sk3.sketch, amount=-CUT_EXTRUDE_1_REACH, mode=Mode.PRIVATE) & part.part
    # 草图3 → 切除-拉伸1 (cut, up to next)
    with BuildSketch(Plane(origin=(0, 0, -45), x_dir=(-1, 0, 0), z_dir=(0, 0, -1)), mode=Mode.PRIVATE) as cut_extrude_1_sk4:
        with Locations((-33, -12)):
            Circle(SKETCH_3_R)
    cut_extrude_1_tool4 = extrude(cut_extrude_1_sk4.sketch, amount=-CUT_EXTRUDE_1_REACH, mode=Mode.PRIVATE) & part.part
    add(cut_extrude_1_tool1.solids().sort_by_distance((7, -12, -45))[0], mode=Mode.SUBTRACT)
    add(cut_extrude_1_tool2.solids().sort_by_distance((7, -38, -45))[0], mode=Mode.SUBTRACT)
    add(cut_extrude_1_tool3.solids().sort_by_distance((33, -38, -45))[0], mode=Mode.SUBTRACT)
    add(cut_extrude_1_tool4.solids().sort_by_distance((33, -12, -45))[0], mode=Mode.SUBTRACT)

    # 草图4 → 凸台-拉伸4 (add)
    with BuildSketch(Plane.ZY):
        Polygon((-30, 0), (-40, 0), (-40, -10), align=None)
    extrude(amount=-EXTRUDE_4_DEPTH)

    # 草图5 → 凸台-拉伸5 (add)
    with BuildSketch(Plane(origin=(40, 0, 0), x_dir=(0, 0, -1), z_dir=(1, 0, 0))):
        Polygon((40, -10), (40, 0), (30, 0), align=None)
    extrude(amount=-EXTRUDE_5_DEPTH)


solid = part.part
